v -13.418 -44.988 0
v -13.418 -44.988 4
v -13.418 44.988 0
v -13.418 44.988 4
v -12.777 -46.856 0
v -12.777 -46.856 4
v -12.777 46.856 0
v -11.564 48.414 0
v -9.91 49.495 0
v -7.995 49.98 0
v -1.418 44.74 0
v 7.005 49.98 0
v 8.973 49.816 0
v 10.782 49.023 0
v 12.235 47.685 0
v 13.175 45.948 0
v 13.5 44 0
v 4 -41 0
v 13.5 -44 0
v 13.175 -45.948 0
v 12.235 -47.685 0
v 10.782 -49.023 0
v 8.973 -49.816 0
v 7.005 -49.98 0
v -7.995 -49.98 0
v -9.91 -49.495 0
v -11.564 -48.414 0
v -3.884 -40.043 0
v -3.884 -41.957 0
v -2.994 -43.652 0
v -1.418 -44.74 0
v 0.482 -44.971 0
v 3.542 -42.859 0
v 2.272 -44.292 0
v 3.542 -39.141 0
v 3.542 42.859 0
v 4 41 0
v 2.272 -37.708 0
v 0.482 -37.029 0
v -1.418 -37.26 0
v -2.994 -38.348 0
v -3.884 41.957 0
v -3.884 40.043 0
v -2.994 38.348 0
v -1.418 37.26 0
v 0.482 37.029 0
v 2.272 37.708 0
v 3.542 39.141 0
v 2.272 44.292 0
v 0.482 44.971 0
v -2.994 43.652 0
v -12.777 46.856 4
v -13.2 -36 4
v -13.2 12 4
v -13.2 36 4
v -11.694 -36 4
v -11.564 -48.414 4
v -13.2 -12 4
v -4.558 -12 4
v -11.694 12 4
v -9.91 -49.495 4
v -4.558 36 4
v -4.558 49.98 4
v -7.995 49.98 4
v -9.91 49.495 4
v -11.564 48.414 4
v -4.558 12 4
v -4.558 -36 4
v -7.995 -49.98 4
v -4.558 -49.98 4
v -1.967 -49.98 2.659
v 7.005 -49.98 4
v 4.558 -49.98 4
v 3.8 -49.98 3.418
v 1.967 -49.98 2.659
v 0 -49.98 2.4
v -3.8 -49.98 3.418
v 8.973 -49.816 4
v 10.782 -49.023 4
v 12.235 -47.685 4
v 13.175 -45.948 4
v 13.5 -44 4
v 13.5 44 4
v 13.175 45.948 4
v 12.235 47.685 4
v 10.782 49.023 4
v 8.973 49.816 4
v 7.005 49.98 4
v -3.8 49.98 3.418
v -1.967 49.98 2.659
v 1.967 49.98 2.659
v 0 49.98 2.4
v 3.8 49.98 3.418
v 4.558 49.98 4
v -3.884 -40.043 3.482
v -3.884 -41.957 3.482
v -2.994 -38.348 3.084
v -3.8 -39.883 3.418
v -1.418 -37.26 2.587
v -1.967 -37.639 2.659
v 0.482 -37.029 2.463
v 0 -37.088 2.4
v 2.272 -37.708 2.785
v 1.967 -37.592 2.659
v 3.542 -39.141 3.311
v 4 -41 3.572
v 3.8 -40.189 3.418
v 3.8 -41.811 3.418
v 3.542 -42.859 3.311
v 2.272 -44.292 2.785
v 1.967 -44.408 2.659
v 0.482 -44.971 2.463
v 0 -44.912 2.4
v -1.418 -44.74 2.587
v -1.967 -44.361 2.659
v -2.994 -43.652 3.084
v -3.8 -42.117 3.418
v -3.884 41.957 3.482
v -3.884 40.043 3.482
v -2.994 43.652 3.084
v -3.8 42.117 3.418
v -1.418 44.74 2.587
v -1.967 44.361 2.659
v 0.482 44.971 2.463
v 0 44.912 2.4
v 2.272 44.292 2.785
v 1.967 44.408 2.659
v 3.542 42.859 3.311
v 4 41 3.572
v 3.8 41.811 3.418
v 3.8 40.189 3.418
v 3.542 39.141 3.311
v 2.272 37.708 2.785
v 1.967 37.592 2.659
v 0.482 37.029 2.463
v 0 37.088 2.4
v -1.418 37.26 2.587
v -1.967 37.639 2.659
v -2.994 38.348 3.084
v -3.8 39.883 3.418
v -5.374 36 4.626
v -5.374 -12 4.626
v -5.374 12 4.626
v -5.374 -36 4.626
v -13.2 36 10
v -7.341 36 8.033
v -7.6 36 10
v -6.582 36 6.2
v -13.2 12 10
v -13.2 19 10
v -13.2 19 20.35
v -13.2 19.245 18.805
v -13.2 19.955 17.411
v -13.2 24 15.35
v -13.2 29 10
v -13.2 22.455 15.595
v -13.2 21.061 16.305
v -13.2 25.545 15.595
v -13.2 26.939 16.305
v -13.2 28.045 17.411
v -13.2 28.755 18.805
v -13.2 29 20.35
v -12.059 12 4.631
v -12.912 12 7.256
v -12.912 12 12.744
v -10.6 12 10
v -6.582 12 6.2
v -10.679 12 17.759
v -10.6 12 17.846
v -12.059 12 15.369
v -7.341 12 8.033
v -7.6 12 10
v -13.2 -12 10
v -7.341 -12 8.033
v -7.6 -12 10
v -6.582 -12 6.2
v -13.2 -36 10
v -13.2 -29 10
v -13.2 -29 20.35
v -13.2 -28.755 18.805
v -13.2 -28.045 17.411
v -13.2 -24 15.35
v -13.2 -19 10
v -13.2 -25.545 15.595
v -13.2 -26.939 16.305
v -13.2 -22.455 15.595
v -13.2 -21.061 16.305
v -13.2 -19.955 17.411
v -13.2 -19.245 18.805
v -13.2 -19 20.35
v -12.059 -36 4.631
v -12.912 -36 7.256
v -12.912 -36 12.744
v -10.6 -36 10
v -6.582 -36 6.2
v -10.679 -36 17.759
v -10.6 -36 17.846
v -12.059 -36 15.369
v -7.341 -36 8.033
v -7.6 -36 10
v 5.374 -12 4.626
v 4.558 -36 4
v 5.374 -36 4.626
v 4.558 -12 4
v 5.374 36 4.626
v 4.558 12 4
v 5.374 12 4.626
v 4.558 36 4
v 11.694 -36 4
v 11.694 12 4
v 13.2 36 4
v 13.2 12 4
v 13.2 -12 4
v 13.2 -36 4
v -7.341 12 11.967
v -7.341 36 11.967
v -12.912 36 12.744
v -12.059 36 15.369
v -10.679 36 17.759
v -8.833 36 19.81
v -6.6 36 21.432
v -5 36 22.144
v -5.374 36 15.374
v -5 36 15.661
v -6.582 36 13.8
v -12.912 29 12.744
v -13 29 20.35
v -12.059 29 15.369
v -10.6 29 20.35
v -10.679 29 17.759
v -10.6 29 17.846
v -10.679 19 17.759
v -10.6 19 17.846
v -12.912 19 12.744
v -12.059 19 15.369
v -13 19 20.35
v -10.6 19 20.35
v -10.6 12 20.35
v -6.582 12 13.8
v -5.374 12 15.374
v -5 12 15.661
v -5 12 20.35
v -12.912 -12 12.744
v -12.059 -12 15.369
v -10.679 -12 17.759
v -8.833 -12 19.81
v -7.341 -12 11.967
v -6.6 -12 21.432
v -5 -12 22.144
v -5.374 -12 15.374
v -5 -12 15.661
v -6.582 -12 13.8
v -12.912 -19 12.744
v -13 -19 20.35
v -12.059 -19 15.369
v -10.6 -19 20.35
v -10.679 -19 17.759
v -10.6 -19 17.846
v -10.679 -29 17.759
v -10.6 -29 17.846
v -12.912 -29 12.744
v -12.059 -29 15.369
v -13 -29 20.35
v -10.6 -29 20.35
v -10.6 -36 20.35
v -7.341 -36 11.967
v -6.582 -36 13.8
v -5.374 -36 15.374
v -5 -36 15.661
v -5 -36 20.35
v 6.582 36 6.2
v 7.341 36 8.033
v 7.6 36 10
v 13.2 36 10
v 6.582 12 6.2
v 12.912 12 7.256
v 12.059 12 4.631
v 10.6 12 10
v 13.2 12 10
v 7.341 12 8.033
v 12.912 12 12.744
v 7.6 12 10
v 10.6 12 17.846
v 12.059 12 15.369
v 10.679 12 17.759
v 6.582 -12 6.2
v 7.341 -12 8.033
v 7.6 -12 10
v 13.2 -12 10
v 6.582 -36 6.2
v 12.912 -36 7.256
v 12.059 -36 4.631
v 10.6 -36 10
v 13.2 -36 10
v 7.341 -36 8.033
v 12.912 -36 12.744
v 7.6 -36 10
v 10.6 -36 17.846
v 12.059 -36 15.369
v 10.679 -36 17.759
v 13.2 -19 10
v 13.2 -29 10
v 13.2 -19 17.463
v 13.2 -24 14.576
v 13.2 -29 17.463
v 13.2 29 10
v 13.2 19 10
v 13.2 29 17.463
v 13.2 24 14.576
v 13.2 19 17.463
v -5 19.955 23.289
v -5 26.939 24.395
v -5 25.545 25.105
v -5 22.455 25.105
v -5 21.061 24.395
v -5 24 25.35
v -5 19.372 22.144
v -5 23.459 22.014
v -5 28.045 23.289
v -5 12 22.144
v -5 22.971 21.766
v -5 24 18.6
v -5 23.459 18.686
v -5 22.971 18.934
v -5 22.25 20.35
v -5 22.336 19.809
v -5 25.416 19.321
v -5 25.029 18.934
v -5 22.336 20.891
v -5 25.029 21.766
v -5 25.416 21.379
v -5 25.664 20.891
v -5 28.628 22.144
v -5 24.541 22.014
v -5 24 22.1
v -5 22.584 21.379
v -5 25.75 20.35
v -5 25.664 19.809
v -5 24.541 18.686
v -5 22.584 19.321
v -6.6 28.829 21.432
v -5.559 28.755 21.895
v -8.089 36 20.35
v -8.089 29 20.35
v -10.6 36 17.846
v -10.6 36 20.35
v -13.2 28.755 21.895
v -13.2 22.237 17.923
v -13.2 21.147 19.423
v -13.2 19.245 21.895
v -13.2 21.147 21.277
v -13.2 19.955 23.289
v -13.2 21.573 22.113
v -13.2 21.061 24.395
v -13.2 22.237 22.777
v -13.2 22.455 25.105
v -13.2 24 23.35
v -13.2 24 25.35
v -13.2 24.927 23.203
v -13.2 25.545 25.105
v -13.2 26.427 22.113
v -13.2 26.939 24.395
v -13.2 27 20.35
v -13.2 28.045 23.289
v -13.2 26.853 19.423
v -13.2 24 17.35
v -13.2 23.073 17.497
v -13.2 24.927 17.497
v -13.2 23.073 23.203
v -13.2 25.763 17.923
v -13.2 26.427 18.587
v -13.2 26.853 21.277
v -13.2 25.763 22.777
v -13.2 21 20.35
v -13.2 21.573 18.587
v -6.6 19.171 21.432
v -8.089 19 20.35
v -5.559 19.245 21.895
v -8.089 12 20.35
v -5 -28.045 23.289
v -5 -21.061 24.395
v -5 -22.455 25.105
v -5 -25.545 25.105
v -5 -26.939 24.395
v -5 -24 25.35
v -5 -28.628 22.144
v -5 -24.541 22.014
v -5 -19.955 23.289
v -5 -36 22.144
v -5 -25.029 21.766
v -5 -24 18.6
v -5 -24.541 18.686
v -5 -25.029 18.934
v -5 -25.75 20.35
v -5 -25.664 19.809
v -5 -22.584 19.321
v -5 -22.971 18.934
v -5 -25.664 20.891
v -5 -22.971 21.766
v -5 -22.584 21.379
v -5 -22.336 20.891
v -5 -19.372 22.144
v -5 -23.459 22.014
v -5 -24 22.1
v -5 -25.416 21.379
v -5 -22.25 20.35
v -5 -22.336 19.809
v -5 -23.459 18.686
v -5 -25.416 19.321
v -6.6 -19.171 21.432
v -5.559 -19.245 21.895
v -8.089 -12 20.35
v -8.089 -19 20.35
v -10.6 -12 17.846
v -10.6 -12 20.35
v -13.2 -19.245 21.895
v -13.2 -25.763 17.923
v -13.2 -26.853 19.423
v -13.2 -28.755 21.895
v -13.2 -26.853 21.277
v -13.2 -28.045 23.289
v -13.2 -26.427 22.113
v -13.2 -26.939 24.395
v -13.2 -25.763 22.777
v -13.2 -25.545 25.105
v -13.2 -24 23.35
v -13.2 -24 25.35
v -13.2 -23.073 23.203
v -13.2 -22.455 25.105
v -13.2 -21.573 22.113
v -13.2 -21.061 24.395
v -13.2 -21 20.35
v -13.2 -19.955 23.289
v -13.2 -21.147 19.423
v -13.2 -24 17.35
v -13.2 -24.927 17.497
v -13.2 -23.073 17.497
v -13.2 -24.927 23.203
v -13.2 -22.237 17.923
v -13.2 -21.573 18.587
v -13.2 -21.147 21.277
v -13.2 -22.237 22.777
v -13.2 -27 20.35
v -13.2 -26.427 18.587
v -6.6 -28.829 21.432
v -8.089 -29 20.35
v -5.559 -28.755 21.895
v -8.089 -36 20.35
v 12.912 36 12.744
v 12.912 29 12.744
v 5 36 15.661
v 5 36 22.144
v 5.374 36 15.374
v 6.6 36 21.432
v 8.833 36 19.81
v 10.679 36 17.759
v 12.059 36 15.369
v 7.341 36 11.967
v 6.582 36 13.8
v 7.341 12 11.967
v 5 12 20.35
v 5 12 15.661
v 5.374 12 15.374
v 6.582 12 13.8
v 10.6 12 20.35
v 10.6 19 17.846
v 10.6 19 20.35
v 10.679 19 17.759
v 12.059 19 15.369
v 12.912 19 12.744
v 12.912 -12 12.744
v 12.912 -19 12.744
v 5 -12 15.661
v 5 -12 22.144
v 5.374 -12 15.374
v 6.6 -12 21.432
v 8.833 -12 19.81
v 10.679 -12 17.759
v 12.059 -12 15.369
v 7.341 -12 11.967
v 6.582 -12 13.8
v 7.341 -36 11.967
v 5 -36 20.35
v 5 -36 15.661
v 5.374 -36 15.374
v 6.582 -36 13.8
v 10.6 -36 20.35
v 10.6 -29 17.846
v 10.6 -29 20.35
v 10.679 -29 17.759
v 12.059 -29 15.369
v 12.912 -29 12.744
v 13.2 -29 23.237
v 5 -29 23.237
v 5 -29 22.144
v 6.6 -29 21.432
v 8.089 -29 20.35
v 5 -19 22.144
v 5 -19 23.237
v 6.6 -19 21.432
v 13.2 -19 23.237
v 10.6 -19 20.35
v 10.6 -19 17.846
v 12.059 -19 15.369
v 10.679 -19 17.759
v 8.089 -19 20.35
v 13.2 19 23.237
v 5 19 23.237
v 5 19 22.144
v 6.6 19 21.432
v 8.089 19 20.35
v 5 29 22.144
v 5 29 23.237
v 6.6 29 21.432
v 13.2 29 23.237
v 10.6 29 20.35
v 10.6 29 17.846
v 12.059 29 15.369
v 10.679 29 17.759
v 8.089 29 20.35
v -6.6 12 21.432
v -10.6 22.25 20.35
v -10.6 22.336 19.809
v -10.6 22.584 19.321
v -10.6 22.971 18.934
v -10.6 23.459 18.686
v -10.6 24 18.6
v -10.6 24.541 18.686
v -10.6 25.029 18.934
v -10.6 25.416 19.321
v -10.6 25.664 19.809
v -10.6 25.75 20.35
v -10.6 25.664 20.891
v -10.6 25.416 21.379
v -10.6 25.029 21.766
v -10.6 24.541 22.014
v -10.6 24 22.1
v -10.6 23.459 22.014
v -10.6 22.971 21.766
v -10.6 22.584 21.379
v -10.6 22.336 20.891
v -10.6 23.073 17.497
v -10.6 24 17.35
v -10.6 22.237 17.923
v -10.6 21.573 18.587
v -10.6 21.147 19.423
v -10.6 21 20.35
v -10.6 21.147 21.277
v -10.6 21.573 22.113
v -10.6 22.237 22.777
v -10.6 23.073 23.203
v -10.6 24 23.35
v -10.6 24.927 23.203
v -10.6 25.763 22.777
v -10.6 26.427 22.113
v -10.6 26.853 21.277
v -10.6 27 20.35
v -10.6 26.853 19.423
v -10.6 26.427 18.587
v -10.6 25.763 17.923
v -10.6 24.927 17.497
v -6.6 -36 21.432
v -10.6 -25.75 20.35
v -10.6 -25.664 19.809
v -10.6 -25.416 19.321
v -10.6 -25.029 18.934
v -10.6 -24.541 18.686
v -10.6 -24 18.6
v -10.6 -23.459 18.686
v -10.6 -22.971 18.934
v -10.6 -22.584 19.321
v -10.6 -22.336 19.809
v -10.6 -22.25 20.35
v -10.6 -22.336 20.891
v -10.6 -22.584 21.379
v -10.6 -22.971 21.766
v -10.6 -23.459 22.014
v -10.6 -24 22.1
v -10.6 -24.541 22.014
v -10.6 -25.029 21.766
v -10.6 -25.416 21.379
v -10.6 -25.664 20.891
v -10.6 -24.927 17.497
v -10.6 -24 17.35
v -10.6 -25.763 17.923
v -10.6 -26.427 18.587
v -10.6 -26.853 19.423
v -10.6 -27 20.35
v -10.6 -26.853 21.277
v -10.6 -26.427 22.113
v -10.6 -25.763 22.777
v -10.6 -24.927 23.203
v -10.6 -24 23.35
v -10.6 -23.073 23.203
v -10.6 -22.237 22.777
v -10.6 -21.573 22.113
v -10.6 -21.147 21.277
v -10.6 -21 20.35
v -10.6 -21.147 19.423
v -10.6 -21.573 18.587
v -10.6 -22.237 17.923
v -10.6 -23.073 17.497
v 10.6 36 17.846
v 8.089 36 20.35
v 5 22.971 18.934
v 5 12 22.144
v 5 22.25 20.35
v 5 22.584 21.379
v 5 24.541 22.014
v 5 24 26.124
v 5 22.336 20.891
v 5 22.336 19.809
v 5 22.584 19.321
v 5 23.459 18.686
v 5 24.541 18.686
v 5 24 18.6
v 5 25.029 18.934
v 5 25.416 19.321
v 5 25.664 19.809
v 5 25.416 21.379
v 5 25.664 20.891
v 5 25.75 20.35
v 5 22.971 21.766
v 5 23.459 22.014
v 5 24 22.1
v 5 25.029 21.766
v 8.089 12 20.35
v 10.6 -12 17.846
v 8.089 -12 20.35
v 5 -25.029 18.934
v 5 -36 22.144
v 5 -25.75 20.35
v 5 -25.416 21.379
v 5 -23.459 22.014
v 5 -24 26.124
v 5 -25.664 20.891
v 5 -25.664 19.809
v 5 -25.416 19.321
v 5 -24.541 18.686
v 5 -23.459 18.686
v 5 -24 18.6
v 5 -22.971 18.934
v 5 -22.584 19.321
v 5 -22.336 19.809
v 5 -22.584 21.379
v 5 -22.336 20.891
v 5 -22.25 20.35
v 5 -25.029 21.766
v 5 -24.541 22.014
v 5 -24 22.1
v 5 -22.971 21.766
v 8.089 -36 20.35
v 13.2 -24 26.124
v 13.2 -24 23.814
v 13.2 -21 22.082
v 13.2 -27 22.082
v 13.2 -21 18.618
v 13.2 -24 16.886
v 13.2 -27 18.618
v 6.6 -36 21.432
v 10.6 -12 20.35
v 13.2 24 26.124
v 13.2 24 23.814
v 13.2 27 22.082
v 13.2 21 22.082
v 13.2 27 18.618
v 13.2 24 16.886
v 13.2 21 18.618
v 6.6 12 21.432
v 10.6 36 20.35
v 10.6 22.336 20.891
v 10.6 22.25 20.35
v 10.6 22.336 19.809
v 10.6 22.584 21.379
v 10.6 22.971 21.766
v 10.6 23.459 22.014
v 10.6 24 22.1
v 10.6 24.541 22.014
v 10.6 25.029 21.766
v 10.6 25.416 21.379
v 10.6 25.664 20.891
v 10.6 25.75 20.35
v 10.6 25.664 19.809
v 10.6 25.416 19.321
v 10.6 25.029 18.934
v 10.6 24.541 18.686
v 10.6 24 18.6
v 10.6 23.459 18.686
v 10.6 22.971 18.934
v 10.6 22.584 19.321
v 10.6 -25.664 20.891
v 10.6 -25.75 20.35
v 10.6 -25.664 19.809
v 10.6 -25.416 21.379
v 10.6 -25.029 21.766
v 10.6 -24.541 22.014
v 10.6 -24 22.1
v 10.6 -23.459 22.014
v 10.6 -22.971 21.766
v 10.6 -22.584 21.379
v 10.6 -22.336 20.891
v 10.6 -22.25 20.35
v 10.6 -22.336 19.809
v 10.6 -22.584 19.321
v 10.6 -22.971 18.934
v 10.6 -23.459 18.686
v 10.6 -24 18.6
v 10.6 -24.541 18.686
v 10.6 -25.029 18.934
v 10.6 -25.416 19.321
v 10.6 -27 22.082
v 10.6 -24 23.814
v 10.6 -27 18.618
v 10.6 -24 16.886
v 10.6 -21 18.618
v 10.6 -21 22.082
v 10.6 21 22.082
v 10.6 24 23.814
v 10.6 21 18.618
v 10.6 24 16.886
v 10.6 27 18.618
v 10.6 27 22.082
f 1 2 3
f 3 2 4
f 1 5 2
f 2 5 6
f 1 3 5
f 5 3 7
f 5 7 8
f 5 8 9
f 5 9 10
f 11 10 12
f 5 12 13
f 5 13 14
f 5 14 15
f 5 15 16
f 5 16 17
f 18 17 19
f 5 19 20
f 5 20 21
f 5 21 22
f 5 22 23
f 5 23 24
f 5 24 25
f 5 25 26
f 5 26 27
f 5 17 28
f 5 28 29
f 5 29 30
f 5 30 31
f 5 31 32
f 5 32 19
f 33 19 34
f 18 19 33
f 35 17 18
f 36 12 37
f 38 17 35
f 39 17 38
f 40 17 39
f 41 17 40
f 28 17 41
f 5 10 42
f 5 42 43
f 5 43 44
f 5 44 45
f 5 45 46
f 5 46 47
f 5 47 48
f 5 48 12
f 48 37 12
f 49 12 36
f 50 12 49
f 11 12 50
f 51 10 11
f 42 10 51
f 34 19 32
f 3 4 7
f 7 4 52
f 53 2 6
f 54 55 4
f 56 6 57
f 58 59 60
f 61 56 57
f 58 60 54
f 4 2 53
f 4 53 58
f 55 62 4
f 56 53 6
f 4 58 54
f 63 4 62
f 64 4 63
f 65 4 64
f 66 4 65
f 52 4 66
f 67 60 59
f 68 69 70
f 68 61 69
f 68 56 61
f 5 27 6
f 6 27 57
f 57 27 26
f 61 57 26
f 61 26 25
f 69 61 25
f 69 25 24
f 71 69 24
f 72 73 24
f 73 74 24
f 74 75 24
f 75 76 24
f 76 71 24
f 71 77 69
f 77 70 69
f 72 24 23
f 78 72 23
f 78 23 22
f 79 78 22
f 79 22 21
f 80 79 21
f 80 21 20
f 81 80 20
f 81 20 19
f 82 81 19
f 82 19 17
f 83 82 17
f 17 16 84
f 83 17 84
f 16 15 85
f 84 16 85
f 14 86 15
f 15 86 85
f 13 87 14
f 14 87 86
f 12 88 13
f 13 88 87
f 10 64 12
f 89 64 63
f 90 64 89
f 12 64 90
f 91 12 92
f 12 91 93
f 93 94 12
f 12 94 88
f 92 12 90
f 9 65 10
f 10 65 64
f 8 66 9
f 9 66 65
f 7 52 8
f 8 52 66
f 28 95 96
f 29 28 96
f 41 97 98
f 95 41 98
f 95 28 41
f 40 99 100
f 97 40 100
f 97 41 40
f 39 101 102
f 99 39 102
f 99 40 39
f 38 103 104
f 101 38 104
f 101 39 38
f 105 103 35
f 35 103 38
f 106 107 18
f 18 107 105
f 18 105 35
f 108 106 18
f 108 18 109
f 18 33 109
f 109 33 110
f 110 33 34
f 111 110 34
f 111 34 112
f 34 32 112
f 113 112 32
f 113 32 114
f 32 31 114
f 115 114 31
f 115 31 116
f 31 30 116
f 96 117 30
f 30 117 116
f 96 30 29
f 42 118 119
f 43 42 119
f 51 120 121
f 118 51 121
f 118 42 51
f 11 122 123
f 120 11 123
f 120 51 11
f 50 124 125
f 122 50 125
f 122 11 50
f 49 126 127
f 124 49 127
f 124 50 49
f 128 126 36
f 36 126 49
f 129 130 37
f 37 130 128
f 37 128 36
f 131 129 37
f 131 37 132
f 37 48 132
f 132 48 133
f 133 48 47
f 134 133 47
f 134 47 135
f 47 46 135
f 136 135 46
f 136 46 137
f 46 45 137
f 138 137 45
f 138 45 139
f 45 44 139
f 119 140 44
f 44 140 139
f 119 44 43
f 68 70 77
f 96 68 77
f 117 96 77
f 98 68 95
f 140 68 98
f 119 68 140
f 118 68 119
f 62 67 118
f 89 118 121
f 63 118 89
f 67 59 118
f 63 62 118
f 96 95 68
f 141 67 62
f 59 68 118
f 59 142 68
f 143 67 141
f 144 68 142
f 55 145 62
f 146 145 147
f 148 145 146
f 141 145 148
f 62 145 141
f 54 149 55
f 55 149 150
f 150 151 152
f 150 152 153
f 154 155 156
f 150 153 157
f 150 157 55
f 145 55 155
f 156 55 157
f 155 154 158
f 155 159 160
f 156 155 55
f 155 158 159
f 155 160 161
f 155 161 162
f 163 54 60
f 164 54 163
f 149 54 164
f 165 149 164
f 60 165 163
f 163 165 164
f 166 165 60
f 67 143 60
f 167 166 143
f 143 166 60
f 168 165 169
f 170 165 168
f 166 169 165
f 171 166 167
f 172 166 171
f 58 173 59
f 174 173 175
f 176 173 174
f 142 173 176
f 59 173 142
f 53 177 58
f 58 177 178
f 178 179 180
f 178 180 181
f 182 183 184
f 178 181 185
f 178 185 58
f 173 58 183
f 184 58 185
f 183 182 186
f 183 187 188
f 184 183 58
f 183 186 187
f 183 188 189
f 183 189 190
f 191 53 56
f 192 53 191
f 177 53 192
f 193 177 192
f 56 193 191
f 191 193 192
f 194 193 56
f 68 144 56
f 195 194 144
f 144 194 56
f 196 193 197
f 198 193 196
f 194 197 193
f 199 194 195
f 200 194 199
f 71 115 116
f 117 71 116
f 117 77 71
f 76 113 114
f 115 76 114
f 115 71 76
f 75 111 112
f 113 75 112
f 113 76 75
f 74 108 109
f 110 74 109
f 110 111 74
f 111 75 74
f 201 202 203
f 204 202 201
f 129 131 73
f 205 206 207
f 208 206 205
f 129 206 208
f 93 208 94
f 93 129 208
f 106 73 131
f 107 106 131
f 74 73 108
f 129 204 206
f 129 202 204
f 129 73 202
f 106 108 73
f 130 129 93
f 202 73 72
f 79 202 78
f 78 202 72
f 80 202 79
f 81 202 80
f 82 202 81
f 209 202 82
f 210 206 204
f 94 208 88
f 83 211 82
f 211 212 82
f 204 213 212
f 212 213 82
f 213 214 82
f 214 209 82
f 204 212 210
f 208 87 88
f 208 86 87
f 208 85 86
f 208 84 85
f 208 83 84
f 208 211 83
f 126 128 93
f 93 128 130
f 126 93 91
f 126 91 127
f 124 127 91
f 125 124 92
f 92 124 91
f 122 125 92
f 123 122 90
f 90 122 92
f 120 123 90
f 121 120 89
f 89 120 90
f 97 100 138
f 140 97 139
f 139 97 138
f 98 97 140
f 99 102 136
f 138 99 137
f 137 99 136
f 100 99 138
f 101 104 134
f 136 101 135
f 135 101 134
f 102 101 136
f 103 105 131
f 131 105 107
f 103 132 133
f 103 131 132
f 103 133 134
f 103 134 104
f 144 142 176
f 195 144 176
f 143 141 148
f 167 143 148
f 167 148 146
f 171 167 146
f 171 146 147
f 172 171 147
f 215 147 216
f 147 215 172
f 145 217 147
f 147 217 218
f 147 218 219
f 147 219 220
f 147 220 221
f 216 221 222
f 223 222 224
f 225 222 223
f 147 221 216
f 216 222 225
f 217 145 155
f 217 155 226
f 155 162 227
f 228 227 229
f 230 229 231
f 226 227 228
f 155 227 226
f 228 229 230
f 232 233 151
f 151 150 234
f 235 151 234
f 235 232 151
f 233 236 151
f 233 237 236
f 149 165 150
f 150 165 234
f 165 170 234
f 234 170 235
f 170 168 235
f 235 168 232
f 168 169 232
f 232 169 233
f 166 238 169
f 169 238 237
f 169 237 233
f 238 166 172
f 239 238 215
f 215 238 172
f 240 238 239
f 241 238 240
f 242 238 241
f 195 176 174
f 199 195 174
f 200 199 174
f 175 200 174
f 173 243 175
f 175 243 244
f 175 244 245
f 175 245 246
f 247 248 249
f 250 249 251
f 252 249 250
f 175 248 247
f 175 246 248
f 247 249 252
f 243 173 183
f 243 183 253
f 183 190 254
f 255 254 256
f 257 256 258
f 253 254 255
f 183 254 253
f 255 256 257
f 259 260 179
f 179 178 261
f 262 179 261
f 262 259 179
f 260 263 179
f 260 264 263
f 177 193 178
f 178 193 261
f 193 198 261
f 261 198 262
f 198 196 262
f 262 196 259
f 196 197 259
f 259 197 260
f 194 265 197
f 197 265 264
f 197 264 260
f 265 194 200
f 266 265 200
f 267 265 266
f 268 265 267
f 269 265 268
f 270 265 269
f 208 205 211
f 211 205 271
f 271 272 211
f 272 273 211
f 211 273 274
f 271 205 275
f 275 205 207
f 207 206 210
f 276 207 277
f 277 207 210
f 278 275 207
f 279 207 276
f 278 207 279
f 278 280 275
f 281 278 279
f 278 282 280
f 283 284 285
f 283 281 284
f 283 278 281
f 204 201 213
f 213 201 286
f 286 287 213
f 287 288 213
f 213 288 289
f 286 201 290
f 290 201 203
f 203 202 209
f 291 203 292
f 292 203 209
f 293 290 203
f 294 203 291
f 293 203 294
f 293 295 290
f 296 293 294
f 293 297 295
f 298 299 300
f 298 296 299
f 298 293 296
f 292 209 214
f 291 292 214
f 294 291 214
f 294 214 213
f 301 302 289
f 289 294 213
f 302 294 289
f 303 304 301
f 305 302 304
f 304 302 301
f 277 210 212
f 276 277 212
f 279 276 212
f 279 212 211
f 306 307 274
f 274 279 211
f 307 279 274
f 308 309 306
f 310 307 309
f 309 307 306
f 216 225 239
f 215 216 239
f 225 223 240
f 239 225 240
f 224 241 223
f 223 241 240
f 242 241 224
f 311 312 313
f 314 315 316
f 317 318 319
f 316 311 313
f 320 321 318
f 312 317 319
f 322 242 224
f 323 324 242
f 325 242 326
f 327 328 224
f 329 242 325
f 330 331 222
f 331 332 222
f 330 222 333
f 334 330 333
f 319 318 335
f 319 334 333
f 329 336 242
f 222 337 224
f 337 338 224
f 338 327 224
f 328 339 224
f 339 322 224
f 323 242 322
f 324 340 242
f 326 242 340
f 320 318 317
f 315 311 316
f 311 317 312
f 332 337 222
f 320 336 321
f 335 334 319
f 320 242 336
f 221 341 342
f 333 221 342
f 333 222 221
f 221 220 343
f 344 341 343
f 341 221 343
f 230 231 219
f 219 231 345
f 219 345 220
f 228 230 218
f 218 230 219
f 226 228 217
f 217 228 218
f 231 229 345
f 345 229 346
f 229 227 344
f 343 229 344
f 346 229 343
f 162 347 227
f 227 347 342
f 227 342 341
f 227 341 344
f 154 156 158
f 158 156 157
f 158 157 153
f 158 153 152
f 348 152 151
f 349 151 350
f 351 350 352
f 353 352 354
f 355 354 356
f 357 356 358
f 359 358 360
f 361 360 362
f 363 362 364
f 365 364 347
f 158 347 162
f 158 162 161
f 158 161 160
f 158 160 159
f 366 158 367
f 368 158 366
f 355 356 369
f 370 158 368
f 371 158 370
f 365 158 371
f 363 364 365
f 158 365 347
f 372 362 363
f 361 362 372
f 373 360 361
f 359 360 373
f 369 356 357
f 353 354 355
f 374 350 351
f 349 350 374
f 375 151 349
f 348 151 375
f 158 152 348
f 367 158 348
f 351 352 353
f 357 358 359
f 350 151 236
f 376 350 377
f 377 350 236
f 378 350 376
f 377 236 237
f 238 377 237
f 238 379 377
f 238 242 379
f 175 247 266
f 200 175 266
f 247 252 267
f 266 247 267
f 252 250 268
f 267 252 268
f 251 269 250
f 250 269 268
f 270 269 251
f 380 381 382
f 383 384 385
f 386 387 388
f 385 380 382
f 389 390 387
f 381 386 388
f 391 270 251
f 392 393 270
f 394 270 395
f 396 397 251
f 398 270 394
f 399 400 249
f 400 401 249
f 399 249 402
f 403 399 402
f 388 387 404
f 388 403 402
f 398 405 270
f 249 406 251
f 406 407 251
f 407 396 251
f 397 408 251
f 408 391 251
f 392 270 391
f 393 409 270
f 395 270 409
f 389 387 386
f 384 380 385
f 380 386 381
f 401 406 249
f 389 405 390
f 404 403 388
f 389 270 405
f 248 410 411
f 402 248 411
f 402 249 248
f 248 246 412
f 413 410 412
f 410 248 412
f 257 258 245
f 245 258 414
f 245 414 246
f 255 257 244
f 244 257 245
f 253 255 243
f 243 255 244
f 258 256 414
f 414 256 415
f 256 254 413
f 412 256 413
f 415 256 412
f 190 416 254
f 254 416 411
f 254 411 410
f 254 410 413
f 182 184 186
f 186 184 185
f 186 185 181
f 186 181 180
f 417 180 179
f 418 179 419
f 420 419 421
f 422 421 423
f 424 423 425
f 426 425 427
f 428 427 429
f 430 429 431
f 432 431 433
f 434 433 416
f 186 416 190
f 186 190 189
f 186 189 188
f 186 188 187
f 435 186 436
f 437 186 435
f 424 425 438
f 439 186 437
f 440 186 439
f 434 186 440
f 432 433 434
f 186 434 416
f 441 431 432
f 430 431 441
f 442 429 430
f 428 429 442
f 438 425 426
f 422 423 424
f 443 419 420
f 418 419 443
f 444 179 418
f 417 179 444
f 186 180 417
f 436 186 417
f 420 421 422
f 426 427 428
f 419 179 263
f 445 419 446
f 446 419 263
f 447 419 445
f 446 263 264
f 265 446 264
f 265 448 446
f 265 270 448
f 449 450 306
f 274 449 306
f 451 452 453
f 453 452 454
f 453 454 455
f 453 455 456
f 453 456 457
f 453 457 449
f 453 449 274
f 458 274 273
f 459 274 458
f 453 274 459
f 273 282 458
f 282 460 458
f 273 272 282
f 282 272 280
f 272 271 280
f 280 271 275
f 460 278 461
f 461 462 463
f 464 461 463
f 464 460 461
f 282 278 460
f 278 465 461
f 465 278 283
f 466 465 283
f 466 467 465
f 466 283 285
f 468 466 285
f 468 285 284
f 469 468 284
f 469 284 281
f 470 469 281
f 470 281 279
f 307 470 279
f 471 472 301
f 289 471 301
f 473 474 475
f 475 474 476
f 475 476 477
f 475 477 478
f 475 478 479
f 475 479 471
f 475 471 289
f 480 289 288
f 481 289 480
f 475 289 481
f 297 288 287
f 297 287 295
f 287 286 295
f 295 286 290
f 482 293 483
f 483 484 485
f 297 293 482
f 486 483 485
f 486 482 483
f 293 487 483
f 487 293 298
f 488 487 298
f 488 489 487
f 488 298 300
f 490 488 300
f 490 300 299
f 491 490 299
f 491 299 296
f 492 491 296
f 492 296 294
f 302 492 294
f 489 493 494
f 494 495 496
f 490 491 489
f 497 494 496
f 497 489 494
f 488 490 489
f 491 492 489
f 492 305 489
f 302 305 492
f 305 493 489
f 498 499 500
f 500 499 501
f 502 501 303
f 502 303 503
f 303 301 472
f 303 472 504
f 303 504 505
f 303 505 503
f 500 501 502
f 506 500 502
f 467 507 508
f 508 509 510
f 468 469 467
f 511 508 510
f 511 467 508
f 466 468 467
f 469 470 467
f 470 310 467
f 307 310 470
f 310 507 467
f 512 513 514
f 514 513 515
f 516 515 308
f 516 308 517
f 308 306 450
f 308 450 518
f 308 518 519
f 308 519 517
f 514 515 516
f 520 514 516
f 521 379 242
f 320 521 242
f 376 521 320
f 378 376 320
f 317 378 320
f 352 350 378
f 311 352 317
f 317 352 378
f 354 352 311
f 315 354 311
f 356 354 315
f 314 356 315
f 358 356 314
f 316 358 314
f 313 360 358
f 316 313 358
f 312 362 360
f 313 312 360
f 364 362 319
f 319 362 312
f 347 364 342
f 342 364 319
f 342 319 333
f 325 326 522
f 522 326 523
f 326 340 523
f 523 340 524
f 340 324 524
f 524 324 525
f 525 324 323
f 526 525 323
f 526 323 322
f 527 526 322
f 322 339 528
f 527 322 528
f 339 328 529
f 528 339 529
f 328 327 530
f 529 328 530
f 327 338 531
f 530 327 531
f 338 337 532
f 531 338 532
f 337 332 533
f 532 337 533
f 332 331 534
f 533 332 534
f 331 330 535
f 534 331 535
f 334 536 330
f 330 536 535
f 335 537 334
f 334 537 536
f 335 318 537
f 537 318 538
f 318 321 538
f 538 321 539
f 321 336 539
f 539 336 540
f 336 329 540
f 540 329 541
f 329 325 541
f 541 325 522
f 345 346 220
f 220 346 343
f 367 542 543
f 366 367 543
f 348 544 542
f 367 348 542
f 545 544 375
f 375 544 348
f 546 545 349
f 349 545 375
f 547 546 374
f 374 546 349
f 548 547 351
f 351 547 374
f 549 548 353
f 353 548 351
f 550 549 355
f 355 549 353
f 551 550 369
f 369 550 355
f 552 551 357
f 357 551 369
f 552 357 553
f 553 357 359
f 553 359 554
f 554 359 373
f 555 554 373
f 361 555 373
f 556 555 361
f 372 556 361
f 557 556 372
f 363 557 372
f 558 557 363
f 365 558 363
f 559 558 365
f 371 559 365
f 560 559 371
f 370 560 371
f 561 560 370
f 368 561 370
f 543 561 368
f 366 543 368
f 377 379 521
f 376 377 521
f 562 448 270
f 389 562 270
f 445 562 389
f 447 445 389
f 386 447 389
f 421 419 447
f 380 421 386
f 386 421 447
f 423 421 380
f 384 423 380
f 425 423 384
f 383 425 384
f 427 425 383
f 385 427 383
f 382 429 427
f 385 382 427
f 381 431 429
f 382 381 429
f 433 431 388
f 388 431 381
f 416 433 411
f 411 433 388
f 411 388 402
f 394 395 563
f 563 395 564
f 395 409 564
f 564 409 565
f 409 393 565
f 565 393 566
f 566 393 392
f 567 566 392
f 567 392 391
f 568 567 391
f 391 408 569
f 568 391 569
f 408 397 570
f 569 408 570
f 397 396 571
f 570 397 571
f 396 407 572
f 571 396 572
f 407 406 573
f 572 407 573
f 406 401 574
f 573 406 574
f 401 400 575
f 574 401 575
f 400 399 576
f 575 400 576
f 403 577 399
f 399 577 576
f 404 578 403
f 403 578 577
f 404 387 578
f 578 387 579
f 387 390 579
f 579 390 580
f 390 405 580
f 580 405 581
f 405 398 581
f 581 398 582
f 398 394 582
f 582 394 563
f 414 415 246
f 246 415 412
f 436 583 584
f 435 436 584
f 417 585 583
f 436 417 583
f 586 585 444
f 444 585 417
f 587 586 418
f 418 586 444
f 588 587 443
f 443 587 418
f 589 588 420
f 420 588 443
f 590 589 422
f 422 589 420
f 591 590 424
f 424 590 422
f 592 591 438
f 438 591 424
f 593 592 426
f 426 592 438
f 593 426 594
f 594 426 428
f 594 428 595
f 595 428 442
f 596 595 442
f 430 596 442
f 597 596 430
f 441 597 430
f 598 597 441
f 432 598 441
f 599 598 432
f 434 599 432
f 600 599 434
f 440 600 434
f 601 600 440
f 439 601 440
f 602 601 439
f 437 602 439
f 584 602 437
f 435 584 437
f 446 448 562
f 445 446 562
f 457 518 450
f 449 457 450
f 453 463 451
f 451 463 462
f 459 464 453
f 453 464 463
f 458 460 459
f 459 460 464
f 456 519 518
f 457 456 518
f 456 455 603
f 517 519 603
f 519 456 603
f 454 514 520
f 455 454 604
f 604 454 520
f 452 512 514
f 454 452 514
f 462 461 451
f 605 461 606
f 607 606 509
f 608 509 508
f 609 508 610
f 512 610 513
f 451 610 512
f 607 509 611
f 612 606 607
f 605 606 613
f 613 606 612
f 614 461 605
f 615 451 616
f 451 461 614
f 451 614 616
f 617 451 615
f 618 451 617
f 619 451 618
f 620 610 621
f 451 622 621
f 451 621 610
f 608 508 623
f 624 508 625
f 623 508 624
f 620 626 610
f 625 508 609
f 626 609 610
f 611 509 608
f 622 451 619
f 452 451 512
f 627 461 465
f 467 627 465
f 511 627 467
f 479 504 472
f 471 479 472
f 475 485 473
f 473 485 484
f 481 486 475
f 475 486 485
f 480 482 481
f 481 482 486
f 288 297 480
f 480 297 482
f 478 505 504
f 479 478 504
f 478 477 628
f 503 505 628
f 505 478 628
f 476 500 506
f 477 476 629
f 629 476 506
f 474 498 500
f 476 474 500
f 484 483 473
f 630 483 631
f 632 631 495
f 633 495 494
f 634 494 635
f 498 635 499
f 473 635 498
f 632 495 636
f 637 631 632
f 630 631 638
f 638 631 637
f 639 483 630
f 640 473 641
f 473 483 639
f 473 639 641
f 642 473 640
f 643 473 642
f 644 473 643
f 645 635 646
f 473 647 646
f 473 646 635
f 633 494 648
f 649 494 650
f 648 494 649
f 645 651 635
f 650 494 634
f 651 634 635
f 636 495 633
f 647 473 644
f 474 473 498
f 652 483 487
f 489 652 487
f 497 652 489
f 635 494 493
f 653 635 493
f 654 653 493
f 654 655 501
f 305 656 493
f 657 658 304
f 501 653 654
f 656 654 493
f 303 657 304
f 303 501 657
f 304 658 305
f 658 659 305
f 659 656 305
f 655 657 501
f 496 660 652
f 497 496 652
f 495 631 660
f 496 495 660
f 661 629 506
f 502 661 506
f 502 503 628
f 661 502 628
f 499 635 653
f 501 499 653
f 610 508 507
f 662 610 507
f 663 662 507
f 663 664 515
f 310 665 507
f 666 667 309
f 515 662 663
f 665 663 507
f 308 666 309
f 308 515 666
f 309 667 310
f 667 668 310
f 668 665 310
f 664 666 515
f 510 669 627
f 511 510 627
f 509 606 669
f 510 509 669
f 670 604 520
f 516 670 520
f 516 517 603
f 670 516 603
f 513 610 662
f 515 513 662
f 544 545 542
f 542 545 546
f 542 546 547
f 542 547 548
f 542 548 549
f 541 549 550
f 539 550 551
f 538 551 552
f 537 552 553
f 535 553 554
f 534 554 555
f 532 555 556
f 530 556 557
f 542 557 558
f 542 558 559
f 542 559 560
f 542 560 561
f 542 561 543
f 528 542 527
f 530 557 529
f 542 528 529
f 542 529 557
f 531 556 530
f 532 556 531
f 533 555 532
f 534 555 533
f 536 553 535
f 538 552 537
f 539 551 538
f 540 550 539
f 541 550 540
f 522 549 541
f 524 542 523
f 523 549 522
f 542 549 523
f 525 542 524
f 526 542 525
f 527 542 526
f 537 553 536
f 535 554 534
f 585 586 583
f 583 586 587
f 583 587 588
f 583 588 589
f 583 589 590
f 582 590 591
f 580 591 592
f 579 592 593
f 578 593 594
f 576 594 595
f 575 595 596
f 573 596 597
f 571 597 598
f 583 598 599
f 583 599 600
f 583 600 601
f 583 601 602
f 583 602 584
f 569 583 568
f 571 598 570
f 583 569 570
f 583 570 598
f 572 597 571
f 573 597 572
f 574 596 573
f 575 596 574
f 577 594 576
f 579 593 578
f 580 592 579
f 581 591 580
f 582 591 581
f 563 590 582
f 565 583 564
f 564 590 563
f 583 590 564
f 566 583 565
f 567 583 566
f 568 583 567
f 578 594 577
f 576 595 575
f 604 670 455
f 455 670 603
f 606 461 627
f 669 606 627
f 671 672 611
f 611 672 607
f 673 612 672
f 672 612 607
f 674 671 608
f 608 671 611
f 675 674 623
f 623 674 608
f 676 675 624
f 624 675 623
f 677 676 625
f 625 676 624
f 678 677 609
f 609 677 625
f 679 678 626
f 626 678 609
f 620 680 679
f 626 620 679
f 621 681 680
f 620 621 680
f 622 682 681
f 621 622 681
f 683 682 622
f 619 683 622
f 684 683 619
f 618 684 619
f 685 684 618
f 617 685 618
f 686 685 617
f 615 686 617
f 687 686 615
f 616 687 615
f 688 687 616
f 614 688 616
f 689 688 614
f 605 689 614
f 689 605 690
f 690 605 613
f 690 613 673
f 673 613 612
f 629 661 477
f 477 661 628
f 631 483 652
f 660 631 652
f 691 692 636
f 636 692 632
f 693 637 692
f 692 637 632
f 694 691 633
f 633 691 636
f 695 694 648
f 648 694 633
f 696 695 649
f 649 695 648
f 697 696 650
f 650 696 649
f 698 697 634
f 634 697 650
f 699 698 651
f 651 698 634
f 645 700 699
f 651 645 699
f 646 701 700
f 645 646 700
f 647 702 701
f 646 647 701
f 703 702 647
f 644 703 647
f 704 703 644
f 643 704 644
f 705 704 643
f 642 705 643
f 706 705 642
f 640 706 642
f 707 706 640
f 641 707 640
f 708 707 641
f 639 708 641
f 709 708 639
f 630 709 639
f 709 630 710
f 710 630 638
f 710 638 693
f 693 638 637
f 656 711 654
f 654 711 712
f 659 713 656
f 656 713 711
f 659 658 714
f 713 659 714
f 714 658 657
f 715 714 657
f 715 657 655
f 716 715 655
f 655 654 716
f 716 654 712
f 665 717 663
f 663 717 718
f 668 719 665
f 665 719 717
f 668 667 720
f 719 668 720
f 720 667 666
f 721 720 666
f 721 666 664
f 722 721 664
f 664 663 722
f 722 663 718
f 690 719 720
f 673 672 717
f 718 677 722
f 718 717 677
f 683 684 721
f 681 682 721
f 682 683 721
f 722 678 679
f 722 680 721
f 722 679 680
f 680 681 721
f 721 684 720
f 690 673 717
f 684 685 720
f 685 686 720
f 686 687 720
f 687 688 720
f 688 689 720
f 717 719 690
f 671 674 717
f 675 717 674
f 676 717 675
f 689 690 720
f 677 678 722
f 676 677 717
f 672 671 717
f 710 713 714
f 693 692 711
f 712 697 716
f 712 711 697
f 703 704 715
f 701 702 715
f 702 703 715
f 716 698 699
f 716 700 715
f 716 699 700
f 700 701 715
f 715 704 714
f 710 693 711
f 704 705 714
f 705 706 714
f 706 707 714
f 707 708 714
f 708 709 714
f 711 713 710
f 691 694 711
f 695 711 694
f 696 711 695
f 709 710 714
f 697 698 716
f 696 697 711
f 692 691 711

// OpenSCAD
// file: lm8uu-holder-slim_v1-1.scad
// LM8UU holder slim v1.1
// *********************************************
// Jonas Kühling
// http://www.jonaskuehling.de
// http://www.thingiverse.com/jonaskuehling
// *********************************************
// derived from:
// http://www.thingiverse.com/thing:14942

// LM8UU/rod dimensions
LM8UU_dia = 15.2;
LM8UU_length = 24;
rod_dia = 8;

//screw/nut dimensions (M3) - hexagon socket head cap screw ISO 4762, hexagon nut ISO 4032
screw_thread_dia_iso = 3;
screw_head_dia_iso = 5.5;
nut_wrench_size_iso = 5.5;


// screw/nut dimensions for use (plus clearance for fitting purpose)
clearance_dia = 0.5;
screw_thread_dia = screw_thread_dia_iso + clearance_dia;
screw_head_dia = screw_head_dia_iso + clearance_dia;
nut_wrench_size = nut_wrench_size_iso + clearance_dia;
nut_dia_perimeter = (nut_wrench_size/cos(30));
nut_dia = nut_dia_perimeter;
nut_surround_thickness = 2;

// main body dimensions
body_wall_thickness = 5;
body_width = LM8UU_dia + (2*body_wall_thickness);
body_height = body_width;
body_length = LM8UU_length;
gap_width = rod_dia + 2;
screw_bushing_space = 1;
screw_elevation = LM8UU_dia + body_wall_thickness + (screw_thread_dia/2) +screw_bushing_space;

// TEST - uncomment to render in openscad:

// lm8uu_holder(1);		// WITH mountplate
// lm8uu_holder();		// WITHOUT mountplate


// nophead's polyhole module for better lm8uu-fit
module polyhole(d,h) {
    n = max(round(2 * d),3);
    rotate([0,0,180])
        cylinder(h = h, r = (d / 2) / cos (180 / n), $fn = n);
}


module mount_plate()
{
	difference()
	{
		translate([0,0,1.5])
		cube([body_width+2*screw_head_dia+4*nut_surround_thickness,screw_head_dia+2*nut_surround_thickness,3], center=true);

		for(i=[-1,1])
			translate([i*(body_width/2+nut_surround_thickness+screw_head_dia/2),0,-0.5])
				cylinder(r=screw_thread_dia/2, h=4, $fn=20);
	}
}

// main body
module lm8uu_holder(with_mountplate=false)
{
	difference()
	{
		union()
		{
			if (with_mountplate) 
			mount_plate();
	
			// body
			translate([0,0,body_height/4])
				cube([body_width,body_length,body_height/2], center=true);
			translate([0,0,(LM8UU_dia/2)+body_wall_thickness])		
				rotate([90,0,0])
					cylinder(r=(LM8UU_dia/2)+body_wall_thickness, h=LM8UU_length, center=true);
	
			// gap support
			translate([-(gap_width/2)-body_wall_thickness,-(body_length/2),body_height/2])
				cube([body_wall_thickness,LM8UU_length,(LM8UU_dia/2)+screw_bushing_space+(screw_thread_dia/2)]);
			translate([gap_width/2,-(body_length/2),body_height/2])
				cube([body_wall_thickness,LM8UU_length,(LM8UU_dia/2)+screw_bushing_space+(screw_thread_dia/2)]);
	
	
			// nut trap surround
			translate([gap_width/2,0,screw_elevation])
				rotate([0,90,0])
					cylinder(r=(((nut_wrench_size+nut_surround_thickness*2)/cos(30))/2), h=(body_width-gap_width)/2, $fn=6);
			translate([gap_width/2+(body_width-gap_width)/4,0,screw_elevation/2])
				cube([(body_width-gap_width)/2,nut_wrench_size+(nut_surround_thickness*2),screw_elevation],center=true);

			// Screw hole surround
			translate([-gap_width/2,0,screw_elevation])
				rotate([0,-90,0])
					cylinder(r=(screw_head_dia/2)+nut_surround_thickness, h=(body_width-gap_width)/2, $fn=20);
			translate([-(gap_width/2+(body_width-gap_width)/4),0,screw_elevation/2])
				cube([(body_width-gap_width)/2,screw_head_dia+(nut_surround_thickness*2),screw_elevation],center=true);
		}
	
		// fs removed for dual
		// bushing hole
	//	translate([0,0,LM8UU_dia/2+2])
	//		rotate([90,0,0])
//				cylinder(r=LM8UU_dia/2, h=LM8UU_length+1, center=true);
//				translate([0,0,-(LM8UU_length+1)/2]) polyhole(LM8UU_dia,LM8UU_length+1);	// TESTING POLYHOLE MODULE FOR BETTER LM8UU FIT
	
		// top gap
		translate([-(gap_width/2),-(body_length/2)-1,body_height/2])
			cube([gap_width,LM8UU_length+2,(LM8UU_dia/2)+screw_bushing_space+(screw_thread_dia/2)+(nut_dia/2)+nut_surround_thickness+1]);
	
		// screw hole (one all the way through)
		translate([0,0,screw_elevation])
			rotate([0,90,0])
				cylinder(r=screw_thread_dia/2, h=body_width+3, center=true, $fn=20);
	
		// nut trap
		translate([gap_width/2+body_wall_thickness,0,screw_elevation])
			rotate([0,90,0])
				cylinder(r=nut_dia/2, h=body_width/2-gap_width/2-body_wall_thickness+1,$fn=6);
	
		// screw head hole
		translate([-(gap_width)/2-body_wall_thickness,0,screw_elevation])
			rotate([0,-90,0])
				cylinder(r=screw_head_dia/2, h=body_width/2-gap_width/2-body_wall_thickness+1,$fn=20);
	
	}
}
// main file
include <lm8uu-holder-slim_v1-1.scad>

// from LM8UU holder file
LM8UU_dia = 15.2;
body_wall_thickness = 5.6;

// from x_end 
x_end_length = 100; 

dowel_hole_from_centre = x_end_length / 2 - 9;

holder_base_to_rod_centre = LM8UU_dia / 2 + body_wall_thickness; 
x_end_base_to_rod_centre = 20;

holder_spacing = 24; 

z_rod_spacing = 30;

extra_height = z_rod_spacing - holder_base_to_rod_centre - x_end_base_to_rod_centre; 

echo(extra_height);

Z_LM8UU_holder();

module Z_LM8UU_holder(){

	difference(){

		union(){
			translate([0, holder_spacing, extra_height])
				 lm8uu_holder();
			
			translate([0, -holder_spacing, extra_height])
				 lm8uu_holder();

			linear_extrude(height=4)
				base_2d();
		}

		#LM8UU_hole();

		for(dir = [1,-1])
			translate([0, dir * dowel_hole_from_centre, -1])
				#cylinder(r=4, h=20);

		translate([-20,-60,-10])
			cube([40,120, 10]);

	}
}


module base_2d(){

	round_radius = 6;
	half_width = 7.5;
	half_height = 50;

	difference(){
		
		hull(){
	
			for(w=[1,-1])
				for(h=[1,-1])
					translate([half_width*w, half_height*h-round_radius*h])
						circle(r=round_radius); 
			
		}
	
	}


}

module LM8UU_hole(){
	
	translate([0,0,(LM8UU_dia/2)+body_wall_thickness+extra_height])		
					rotate([90,0,0])
						cylinder(r=(LM8UU_dia/2), h=120, center=true);
}

// match hole from LM8UU holder
// nophead's polyhole module for better lm8uu-fit
module polyhole(d,h) {
    n = max(round(2 * d),3);
    rotate([0,0,180])
        cylinder(h = h, r = (d / 2) / cos (180 / n), $fn = n);
}
